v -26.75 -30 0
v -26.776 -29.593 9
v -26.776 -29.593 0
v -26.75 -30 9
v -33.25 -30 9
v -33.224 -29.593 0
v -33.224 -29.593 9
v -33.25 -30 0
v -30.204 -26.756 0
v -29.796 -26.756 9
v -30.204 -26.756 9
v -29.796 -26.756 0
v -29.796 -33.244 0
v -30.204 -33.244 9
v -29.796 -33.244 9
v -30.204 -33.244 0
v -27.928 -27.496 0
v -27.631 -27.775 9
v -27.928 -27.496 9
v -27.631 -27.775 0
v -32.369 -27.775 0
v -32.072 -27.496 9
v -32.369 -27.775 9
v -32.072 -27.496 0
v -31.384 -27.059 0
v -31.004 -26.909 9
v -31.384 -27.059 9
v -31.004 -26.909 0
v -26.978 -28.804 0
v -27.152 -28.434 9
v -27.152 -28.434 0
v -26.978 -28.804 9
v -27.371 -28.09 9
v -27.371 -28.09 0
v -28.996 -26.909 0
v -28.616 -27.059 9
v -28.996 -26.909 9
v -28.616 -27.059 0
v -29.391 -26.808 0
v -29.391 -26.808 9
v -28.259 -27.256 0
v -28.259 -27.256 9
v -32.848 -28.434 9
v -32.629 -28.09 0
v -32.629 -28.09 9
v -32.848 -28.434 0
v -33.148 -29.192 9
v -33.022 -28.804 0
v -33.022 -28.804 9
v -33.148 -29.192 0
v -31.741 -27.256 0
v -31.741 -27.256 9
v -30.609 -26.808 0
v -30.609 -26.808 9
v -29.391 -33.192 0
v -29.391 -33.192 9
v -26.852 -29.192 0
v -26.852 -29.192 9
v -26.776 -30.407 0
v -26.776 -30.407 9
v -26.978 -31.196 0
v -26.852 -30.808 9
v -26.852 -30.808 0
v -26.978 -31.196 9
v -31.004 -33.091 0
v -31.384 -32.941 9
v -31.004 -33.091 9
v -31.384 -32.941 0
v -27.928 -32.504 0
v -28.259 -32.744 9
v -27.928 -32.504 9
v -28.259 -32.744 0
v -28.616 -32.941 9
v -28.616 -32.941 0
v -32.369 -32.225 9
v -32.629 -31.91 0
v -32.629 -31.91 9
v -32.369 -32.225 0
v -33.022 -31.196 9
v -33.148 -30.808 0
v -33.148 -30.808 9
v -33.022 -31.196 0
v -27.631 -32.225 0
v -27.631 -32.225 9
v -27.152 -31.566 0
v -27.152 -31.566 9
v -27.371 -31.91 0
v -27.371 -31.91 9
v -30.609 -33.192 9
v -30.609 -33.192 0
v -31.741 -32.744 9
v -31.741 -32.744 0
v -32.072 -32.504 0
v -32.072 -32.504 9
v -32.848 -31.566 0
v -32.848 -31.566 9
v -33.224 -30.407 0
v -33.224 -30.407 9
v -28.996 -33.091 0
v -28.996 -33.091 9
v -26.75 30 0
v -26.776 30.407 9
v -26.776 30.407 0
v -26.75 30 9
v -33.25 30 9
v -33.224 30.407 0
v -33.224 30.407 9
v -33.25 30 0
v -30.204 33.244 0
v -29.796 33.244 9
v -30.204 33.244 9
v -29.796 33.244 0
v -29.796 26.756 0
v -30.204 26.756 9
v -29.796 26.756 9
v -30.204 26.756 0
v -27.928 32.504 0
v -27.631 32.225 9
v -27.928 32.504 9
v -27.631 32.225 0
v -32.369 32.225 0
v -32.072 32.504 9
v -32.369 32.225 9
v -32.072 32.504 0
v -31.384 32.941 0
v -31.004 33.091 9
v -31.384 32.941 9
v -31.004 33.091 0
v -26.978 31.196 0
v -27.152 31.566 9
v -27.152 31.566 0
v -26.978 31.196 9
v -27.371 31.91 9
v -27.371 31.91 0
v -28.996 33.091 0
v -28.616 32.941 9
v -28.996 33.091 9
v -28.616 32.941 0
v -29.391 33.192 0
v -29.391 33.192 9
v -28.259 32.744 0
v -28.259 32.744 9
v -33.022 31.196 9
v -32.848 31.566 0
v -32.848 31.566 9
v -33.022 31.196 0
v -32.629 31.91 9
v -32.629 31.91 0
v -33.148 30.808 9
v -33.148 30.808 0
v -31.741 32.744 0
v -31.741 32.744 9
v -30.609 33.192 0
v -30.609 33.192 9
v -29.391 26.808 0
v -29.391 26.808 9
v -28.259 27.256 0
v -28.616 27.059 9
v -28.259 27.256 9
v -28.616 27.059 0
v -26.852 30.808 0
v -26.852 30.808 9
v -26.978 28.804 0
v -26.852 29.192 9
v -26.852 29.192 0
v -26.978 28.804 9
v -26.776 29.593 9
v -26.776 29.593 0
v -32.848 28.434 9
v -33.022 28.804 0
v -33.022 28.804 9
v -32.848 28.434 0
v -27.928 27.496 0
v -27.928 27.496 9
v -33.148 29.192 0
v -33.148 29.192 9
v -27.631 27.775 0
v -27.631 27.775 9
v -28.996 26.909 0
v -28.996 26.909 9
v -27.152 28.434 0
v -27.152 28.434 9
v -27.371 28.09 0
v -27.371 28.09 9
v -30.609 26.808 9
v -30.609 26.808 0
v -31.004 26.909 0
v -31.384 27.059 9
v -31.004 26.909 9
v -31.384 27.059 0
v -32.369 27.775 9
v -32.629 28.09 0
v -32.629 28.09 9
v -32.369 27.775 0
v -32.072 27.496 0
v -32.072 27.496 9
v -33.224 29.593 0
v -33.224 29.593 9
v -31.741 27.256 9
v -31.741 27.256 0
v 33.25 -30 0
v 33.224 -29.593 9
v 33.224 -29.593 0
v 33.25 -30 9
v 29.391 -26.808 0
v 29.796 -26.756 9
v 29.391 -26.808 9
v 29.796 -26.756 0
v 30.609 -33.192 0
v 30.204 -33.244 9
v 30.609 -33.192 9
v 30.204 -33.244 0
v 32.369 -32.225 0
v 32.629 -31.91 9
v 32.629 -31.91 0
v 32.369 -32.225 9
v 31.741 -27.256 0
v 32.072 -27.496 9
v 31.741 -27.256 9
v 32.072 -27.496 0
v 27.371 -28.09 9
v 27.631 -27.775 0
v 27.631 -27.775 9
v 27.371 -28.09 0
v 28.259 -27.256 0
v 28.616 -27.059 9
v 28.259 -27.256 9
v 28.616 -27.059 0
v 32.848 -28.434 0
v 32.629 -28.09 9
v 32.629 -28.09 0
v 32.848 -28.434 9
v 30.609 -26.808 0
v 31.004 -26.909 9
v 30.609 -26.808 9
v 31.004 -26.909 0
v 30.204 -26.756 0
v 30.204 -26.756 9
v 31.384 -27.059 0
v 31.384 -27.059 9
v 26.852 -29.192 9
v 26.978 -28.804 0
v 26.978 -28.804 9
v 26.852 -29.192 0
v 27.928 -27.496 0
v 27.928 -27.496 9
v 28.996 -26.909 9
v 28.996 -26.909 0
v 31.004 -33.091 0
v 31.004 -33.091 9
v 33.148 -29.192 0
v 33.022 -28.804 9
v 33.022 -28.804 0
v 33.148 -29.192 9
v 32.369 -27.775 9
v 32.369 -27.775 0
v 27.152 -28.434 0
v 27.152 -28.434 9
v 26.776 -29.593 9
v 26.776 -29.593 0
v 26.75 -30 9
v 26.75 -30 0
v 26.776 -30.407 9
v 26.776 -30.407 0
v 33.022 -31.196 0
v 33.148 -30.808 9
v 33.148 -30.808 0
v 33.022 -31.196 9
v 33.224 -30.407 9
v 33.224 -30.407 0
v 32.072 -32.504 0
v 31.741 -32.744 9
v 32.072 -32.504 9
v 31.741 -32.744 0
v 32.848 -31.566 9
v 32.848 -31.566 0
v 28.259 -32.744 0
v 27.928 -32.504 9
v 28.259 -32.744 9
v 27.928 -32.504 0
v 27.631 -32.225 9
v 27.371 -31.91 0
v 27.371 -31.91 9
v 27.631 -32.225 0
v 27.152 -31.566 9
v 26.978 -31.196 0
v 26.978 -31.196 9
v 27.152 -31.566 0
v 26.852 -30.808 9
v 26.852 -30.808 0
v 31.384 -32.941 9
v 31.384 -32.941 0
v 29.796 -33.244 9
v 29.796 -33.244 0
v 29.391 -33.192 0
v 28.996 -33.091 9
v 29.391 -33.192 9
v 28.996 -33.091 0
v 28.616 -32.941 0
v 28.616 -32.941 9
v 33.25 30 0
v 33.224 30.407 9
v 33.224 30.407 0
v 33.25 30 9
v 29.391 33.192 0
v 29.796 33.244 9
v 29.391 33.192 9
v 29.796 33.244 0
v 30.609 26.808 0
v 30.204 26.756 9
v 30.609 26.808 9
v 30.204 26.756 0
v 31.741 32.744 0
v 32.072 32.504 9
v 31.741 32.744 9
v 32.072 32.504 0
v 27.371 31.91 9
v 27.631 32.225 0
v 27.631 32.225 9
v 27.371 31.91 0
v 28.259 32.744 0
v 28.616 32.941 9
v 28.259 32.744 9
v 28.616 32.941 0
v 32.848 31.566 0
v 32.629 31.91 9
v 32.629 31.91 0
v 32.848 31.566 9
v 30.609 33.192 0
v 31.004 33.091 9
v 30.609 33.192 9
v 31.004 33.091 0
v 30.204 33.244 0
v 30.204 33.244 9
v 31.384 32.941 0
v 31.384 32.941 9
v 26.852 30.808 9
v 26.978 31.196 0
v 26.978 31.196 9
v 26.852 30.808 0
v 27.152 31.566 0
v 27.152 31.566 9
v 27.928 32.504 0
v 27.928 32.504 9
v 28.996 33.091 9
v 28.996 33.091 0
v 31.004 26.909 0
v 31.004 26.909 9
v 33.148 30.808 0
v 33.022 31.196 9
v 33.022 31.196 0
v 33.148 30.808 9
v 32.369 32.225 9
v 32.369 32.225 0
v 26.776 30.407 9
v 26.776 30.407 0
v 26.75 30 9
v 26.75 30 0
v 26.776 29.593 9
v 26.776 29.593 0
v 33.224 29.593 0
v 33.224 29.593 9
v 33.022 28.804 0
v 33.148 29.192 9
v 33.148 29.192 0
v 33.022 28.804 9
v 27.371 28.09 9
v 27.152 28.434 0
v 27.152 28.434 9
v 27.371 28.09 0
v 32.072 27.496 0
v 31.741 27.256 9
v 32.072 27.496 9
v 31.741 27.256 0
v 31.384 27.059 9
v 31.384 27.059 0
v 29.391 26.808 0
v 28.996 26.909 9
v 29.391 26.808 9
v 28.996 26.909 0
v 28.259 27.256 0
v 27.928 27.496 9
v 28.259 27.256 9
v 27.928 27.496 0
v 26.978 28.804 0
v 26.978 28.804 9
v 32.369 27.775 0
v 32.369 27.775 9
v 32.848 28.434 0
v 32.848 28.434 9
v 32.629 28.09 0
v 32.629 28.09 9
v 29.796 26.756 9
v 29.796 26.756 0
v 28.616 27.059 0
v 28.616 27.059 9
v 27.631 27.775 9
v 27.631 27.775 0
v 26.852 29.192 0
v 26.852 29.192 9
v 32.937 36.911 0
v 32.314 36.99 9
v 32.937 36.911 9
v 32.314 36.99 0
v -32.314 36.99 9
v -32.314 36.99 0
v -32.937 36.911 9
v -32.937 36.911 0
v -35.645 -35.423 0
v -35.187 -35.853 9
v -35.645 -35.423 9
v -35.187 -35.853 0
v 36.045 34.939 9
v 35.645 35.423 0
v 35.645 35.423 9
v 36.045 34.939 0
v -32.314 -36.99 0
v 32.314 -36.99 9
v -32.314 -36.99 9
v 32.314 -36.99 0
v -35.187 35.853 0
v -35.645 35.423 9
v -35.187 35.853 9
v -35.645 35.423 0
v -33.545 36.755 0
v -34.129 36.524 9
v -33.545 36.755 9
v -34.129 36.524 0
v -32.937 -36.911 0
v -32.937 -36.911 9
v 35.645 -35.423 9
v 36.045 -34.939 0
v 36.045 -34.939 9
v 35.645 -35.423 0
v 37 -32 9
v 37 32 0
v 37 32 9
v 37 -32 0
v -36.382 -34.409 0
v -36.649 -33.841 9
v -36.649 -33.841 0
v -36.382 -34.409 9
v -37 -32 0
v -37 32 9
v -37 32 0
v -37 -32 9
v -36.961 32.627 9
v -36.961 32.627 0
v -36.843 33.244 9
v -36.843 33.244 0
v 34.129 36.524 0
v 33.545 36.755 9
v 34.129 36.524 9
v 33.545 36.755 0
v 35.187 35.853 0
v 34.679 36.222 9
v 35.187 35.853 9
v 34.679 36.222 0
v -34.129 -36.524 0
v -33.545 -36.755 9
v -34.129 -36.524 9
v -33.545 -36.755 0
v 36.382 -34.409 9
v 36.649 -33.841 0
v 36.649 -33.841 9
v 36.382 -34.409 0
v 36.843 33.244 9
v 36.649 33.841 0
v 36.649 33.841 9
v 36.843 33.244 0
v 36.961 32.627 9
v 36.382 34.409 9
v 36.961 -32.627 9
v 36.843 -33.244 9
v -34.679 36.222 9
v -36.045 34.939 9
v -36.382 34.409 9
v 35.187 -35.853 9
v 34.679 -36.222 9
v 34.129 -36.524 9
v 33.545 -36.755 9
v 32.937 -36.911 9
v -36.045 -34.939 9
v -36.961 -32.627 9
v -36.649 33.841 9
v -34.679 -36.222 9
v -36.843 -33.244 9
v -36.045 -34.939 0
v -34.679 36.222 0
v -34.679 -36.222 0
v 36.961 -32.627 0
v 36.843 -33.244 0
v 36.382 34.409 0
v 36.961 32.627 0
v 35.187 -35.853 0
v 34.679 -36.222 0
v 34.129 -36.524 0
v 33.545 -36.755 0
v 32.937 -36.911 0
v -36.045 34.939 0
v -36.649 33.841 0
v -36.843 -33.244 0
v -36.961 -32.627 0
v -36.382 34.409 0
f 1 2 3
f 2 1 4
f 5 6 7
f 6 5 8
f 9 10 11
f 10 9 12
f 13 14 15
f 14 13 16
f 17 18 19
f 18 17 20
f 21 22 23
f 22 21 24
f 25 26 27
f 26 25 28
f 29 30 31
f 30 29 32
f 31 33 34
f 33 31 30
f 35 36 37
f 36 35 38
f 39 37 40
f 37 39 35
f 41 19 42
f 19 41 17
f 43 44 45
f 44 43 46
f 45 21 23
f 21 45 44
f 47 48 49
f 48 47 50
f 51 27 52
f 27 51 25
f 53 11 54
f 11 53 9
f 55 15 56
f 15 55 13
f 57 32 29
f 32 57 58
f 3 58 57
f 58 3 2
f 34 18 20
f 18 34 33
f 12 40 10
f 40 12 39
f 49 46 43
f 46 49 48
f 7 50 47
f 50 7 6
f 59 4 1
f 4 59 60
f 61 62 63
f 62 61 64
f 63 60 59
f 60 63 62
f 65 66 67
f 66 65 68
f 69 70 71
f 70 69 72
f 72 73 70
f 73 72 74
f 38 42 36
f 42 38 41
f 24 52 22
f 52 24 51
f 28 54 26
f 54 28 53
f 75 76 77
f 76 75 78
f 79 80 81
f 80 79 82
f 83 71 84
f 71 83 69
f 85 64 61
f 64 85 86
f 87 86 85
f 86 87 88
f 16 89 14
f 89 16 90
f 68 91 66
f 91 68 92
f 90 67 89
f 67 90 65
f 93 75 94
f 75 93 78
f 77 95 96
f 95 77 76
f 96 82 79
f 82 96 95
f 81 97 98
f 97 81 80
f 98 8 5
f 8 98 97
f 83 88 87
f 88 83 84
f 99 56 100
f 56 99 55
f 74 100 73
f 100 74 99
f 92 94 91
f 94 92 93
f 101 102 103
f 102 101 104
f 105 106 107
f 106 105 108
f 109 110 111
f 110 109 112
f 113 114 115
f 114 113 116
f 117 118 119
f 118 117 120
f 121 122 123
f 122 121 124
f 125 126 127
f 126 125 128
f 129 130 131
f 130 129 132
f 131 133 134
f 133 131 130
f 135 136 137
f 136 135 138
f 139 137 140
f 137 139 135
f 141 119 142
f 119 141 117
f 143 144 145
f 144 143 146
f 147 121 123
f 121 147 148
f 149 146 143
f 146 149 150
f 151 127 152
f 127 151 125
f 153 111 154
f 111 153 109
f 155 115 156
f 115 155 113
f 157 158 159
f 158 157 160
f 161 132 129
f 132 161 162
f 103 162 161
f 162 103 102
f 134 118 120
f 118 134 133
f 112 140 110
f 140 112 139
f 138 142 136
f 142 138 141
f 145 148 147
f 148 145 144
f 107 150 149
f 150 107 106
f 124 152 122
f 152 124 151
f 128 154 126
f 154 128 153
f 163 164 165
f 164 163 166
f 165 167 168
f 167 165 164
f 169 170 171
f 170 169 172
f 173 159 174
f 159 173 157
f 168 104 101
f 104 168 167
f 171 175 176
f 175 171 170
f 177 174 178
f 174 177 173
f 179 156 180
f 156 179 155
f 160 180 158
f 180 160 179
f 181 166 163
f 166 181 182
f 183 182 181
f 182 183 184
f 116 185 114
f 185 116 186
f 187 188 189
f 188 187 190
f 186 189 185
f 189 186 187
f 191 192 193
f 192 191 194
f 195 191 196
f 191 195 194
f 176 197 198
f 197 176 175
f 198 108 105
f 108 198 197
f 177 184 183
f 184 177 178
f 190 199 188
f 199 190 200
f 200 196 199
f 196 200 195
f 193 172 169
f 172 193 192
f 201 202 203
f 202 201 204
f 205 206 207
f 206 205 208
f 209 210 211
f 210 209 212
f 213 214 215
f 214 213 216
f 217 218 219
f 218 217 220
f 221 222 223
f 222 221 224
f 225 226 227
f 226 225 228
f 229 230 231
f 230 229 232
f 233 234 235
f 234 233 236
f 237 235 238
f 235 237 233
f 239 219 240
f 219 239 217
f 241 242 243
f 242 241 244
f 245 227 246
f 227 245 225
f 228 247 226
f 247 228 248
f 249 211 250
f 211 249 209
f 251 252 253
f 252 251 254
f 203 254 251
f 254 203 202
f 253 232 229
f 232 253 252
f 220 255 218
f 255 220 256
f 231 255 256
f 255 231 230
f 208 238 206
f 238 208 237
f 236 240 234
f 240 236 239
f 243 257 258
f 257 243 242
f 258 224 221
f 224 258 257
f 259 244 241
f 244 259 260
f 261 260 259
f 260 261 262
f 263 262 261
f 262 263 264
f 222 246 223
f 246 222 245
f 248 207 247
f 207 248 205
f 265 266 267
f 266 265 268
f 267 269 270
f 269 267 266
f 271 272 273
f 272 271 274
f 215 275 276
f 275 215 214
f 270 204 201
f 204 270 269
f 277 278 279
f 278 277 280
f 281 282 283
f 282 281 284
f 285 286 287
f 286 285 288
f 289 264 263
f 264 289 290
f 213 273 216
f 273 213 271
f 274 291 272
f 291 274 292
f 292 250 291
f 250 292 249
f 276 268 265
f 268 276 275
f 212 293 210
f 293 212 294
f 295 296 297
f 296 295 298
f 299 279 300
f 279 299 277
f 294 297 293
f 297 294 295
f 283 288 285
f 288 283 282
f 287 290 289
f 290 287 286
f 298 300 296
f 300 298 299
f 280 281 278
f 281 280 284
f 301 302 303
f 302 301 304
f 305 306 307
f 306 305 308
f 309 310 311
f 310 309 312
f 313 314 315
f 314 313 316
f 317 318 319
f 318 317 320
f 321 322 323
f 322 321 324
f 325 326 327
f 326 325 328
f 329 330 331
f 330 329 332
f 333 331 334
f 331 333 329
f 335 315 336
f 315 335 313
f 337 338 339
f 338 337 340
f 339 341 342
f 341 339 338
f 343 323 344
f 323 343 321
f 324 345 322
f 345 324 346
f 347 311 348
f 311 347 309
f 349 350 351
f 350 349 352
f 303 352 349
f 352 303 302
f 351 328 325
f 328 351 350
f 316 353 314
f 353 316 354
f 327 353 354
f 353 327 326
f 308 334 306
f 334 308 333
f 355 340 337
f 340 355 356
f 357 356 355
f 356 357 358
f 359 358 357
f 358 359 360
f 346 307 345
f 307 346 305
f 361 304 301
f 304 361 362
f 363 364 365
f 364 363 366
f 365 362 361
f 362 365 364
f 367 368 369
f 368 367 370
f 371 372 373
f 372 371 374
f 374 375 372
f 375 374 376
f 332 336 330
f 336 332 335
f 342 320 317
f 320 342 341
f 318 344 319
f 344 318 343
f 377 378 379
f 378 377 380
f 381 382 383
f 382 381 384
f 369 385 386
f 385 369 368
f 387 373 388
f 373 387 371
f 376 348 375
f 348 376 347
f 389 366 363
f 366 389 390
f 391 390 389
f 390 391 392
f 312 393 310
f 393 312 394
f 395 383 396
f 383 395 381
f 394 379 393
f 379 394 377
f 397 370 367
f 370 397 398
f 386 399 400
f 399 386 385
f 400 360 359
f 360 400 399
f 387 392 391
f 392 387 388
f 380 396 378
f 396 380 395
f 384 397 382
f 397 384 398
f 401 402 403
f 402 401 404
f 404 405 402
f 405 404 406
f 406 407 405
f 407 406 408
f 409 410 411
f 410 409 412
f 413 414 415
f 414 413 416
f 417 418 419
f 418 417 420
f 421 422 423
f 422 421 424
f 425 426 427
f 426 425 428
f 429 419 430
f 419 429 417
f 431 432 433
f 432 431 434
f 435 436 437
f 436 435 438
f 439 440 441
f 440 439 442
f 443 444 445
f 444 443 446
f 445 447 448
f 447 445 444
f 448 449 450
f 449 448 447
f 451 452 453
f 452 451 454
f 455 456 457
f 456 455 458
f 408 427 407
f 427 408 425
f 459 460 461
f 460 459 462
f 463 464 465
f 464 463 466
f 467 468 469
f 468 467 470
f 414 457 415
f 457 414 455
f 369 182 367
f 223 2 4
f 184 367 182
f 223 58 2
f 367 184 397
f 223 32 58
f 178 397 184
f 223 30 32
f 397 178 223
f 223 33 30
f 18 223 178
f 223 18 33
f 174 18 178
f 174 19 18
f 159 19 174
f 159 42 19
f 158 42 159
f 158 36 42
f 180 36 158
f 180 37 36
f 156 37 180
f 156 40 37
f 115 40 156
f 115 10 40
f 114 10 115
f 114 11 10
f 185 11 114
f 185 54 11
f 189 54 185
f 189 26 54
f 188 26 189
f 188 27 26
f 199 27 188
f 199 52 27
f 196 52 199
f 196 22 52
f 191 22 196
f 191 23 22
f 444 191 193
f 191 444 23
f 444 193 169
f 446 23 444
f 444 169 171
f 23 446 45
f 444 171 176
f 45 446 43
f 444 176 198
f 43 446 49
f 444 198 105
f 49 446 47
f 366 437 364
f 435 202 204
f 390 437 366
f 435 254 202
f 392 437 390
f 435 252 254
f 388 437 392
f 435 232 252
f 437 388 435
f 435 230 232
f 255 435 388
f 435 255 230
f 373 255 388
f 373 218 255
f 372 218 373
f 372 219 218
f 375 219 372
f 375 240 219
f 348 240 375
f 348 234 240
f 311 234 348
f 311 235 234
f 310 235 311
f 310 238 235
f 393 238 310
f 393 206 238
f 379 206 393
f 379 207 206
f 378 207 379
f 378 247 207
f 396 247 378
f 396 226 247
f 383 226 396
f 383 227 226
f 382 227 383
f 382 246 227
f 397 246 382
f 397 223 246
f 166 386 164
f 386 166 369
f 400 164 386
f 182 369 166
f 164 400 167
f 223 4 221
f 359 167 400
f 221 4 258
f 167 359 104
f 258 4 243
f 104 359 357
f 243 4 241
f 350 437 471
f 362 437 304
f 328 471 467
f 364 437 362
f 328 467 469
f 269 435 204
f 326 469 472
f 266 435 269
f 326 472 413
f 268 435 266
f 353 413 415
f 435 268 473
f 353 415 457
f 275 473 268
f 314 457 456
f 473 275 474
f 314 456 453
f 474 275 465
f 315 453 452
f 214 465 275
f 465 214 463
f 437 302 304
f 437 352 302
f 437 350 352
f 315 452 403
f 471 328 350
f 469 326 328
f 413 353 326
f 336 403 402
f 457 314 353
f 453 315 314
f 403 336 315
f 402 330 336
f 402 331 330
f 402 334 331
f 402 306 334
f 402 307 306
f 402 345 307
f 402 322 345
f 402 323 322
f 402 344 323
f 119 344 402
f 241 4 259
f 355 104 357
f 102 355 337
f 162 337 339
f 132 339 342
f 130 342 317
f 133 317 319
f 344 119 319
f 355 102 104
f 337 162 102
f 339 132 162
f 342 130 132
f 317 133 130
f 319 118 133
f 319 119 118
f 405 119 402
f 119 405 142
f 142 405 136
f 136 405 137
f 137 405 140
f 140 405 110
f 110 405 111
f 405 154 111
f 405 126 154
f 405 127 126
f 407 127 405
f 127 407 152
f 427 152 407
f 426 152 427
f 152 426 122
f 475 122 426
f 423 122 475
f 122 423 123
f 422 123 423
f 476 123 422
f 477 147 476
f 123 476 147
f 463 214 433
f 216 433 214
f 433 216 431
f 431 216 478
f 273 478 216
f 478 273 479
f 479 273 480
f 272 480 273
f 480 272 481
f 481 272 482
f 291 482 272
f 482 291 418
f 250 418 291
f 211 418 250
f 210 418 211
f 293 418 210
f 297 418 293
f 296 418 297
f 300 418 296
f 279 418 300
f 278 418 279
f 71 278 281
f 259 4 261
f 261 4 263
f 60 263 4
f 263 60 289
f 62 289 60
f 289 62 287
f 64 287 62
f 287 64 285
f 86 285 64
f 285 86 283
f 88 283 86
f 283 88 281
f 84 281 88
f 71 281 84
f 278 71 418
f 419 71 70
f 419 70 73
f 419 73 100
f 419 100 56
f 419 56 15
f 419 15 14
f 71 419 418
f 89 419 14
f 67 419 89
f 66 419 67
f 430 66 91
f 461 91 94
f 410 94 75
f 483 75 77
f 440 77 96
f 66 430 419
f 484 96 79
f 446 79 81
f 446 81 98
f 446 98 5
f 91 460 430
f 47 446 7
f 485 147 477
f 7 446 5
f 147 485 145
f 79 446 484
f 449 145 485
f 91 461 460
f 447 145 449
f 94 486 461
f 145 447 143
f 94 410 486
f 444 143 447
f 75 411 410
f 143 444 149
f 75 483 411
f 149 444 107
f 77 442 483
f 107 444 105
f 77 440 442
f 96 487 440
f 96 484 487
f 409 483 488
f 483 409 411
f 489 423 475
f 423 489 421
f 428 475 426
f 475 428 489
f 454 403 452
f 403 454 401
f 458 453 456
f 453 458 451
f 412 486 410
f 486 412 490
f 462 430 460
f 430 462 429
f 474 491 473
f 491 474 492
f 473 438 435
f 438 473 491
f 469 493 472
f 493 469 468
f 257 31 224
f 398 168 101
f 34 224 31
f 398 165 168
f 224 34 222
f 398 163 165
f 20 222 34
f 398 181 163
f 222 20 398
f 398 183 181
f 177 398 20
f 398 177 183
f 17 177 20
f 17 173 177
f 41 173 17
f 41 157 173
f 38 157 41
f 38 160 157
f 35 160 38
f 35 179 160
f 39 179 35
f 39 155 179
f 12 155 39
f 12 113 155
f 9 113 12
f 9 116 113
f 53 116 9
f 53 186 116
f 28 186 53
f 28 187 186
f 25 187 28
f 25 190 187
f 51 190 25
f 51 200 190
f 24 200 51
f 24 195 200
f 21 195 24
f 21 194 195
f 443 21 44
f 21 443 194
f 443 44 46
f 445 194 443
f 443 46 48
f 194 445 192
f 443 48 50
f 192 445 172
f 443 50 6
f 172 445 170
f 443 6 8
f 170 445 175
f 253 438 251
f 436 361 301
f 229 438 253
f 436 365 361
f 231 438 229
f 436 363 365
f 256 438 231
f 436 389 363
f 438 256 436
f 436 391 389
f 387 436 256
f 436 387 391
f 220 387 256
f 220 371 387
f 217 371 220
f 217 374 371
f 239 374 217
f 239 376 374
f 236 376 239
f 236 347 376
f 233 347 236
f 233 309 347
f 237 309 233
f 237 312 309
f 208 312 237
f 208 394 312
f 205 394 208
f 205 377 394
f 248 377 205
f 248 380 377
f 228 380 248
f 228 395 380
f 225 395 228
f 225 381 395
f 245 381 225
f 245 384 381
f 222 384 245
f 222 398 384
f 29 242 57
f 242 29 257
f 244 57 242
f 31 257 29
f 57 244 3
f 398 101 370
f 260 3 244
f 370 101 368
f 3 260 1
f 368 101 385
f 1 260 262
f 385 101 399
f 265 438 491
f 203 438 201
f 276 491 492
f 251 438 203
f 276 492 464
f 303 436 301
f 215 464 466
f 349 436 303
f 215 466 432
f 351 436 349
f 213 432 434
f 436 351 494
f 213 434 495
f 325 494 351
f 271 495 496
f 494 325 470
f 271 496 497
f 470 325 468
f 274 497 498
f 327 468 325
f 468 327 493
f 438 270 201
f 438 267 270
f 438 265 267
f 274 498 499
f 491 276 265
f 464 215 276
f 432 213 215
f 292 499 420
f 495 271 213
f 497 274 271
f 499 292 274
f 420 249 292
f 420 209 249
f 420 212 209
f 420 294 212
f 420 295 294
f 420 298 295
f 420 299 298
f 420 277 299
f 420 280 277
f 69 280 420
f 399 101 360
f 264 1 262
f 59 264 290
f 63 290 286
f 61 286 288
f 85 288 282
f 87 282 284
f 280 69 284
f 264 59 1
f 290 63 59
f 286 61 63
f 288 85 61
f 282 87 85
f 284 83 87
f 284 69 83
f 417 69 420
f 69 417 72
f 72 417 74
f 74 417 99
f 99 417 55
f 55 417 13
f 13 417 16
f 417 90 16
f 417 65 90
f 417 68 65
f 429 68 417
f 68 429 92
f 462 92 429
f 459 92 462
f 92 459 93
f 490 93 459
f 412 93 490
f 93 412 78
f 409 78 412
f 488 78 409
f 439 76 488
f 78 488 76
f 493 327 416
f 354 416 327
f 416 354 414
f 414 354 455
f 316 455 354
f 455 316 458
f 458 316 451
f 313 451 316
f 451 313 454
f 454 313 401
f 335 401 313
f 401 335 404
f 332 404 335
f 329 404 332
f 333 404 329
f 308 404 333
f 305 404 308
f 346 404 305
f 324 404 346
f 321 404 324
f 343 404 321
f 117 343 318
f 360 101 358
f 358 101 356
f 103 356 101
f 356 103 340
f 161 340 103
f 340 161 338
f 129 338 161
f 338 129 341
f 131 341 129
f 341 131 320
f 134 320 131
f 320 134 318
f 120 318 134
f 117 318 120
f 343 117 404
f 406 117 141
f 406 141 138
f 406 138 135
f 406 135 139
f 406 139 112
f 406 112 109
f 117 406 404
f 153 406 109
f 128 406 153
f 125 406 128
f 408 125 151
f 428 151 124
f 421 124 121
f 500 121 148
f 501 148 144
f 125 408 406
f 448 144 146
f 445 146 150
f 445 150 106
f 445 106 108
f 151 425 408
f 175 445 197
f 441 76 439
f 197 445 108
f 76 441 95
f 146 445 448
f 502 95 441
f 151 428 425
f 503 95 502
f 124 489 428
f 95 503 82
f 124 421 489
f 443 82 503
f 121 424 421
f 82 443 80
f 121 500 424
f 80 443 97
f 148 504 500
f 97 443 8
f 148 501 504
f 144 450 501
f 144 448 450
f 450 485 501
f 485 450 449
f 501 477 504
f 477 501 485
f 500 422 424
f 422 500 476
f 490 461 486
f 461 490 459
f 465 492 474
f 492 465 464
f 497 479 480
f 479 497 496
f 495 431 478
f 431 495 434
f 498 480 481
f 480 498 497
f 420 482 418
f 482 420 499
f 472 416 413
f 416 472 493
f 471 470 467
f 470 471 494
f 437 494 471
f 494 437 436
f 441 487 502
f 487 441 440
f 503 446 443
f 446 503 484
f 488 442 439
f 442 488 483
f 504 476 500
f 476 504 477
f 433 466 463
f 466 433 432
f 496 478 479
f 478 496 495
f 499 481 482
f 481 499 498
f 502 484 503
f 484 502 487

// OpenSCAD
$fn = 50;


difference() {
	union() {
		hull() {
			translate(v = [-32.0000000000, 32.0000000000, 0]) {
				cylinder(h = 9, r = 5);
			}
			translate(v = [32.0000000000, 32.0000000000, 0]) {
				cylinder(h = 9, r = 5);
			}
			translate(v = [-32.0000000000, -32.0000000000, 0]) {
				cylinder(h = 9, r = 5);
			}
			translate(v = [32.0000000000, -32.0000000000, 0]) {
				cylinder(h = 9, r = 5);
			}
		}
	}
	union() {
		translate(v = [-30.0000000000, -30.0000000000, -100.0000000000]) {
			cylinder(h = 200, r = 3.2500000000);
		}
		translate(v = [-30.0000000000, 30.0000000000, -100.0000000000]) {
			cylinder(h = 200, r = 3.2500000000);
		}
		translate(v = [30.0000000000, -30.0000000000, -100.0000000000]) {
			cylinder(h = 200, r = 3.2500000000);
		}
		translate(v = [30.0000000000, 30.0000000000, -100.0000000000]) {
			cylinder(h = 200, r = 3.2500000000);
		}
	}
}
